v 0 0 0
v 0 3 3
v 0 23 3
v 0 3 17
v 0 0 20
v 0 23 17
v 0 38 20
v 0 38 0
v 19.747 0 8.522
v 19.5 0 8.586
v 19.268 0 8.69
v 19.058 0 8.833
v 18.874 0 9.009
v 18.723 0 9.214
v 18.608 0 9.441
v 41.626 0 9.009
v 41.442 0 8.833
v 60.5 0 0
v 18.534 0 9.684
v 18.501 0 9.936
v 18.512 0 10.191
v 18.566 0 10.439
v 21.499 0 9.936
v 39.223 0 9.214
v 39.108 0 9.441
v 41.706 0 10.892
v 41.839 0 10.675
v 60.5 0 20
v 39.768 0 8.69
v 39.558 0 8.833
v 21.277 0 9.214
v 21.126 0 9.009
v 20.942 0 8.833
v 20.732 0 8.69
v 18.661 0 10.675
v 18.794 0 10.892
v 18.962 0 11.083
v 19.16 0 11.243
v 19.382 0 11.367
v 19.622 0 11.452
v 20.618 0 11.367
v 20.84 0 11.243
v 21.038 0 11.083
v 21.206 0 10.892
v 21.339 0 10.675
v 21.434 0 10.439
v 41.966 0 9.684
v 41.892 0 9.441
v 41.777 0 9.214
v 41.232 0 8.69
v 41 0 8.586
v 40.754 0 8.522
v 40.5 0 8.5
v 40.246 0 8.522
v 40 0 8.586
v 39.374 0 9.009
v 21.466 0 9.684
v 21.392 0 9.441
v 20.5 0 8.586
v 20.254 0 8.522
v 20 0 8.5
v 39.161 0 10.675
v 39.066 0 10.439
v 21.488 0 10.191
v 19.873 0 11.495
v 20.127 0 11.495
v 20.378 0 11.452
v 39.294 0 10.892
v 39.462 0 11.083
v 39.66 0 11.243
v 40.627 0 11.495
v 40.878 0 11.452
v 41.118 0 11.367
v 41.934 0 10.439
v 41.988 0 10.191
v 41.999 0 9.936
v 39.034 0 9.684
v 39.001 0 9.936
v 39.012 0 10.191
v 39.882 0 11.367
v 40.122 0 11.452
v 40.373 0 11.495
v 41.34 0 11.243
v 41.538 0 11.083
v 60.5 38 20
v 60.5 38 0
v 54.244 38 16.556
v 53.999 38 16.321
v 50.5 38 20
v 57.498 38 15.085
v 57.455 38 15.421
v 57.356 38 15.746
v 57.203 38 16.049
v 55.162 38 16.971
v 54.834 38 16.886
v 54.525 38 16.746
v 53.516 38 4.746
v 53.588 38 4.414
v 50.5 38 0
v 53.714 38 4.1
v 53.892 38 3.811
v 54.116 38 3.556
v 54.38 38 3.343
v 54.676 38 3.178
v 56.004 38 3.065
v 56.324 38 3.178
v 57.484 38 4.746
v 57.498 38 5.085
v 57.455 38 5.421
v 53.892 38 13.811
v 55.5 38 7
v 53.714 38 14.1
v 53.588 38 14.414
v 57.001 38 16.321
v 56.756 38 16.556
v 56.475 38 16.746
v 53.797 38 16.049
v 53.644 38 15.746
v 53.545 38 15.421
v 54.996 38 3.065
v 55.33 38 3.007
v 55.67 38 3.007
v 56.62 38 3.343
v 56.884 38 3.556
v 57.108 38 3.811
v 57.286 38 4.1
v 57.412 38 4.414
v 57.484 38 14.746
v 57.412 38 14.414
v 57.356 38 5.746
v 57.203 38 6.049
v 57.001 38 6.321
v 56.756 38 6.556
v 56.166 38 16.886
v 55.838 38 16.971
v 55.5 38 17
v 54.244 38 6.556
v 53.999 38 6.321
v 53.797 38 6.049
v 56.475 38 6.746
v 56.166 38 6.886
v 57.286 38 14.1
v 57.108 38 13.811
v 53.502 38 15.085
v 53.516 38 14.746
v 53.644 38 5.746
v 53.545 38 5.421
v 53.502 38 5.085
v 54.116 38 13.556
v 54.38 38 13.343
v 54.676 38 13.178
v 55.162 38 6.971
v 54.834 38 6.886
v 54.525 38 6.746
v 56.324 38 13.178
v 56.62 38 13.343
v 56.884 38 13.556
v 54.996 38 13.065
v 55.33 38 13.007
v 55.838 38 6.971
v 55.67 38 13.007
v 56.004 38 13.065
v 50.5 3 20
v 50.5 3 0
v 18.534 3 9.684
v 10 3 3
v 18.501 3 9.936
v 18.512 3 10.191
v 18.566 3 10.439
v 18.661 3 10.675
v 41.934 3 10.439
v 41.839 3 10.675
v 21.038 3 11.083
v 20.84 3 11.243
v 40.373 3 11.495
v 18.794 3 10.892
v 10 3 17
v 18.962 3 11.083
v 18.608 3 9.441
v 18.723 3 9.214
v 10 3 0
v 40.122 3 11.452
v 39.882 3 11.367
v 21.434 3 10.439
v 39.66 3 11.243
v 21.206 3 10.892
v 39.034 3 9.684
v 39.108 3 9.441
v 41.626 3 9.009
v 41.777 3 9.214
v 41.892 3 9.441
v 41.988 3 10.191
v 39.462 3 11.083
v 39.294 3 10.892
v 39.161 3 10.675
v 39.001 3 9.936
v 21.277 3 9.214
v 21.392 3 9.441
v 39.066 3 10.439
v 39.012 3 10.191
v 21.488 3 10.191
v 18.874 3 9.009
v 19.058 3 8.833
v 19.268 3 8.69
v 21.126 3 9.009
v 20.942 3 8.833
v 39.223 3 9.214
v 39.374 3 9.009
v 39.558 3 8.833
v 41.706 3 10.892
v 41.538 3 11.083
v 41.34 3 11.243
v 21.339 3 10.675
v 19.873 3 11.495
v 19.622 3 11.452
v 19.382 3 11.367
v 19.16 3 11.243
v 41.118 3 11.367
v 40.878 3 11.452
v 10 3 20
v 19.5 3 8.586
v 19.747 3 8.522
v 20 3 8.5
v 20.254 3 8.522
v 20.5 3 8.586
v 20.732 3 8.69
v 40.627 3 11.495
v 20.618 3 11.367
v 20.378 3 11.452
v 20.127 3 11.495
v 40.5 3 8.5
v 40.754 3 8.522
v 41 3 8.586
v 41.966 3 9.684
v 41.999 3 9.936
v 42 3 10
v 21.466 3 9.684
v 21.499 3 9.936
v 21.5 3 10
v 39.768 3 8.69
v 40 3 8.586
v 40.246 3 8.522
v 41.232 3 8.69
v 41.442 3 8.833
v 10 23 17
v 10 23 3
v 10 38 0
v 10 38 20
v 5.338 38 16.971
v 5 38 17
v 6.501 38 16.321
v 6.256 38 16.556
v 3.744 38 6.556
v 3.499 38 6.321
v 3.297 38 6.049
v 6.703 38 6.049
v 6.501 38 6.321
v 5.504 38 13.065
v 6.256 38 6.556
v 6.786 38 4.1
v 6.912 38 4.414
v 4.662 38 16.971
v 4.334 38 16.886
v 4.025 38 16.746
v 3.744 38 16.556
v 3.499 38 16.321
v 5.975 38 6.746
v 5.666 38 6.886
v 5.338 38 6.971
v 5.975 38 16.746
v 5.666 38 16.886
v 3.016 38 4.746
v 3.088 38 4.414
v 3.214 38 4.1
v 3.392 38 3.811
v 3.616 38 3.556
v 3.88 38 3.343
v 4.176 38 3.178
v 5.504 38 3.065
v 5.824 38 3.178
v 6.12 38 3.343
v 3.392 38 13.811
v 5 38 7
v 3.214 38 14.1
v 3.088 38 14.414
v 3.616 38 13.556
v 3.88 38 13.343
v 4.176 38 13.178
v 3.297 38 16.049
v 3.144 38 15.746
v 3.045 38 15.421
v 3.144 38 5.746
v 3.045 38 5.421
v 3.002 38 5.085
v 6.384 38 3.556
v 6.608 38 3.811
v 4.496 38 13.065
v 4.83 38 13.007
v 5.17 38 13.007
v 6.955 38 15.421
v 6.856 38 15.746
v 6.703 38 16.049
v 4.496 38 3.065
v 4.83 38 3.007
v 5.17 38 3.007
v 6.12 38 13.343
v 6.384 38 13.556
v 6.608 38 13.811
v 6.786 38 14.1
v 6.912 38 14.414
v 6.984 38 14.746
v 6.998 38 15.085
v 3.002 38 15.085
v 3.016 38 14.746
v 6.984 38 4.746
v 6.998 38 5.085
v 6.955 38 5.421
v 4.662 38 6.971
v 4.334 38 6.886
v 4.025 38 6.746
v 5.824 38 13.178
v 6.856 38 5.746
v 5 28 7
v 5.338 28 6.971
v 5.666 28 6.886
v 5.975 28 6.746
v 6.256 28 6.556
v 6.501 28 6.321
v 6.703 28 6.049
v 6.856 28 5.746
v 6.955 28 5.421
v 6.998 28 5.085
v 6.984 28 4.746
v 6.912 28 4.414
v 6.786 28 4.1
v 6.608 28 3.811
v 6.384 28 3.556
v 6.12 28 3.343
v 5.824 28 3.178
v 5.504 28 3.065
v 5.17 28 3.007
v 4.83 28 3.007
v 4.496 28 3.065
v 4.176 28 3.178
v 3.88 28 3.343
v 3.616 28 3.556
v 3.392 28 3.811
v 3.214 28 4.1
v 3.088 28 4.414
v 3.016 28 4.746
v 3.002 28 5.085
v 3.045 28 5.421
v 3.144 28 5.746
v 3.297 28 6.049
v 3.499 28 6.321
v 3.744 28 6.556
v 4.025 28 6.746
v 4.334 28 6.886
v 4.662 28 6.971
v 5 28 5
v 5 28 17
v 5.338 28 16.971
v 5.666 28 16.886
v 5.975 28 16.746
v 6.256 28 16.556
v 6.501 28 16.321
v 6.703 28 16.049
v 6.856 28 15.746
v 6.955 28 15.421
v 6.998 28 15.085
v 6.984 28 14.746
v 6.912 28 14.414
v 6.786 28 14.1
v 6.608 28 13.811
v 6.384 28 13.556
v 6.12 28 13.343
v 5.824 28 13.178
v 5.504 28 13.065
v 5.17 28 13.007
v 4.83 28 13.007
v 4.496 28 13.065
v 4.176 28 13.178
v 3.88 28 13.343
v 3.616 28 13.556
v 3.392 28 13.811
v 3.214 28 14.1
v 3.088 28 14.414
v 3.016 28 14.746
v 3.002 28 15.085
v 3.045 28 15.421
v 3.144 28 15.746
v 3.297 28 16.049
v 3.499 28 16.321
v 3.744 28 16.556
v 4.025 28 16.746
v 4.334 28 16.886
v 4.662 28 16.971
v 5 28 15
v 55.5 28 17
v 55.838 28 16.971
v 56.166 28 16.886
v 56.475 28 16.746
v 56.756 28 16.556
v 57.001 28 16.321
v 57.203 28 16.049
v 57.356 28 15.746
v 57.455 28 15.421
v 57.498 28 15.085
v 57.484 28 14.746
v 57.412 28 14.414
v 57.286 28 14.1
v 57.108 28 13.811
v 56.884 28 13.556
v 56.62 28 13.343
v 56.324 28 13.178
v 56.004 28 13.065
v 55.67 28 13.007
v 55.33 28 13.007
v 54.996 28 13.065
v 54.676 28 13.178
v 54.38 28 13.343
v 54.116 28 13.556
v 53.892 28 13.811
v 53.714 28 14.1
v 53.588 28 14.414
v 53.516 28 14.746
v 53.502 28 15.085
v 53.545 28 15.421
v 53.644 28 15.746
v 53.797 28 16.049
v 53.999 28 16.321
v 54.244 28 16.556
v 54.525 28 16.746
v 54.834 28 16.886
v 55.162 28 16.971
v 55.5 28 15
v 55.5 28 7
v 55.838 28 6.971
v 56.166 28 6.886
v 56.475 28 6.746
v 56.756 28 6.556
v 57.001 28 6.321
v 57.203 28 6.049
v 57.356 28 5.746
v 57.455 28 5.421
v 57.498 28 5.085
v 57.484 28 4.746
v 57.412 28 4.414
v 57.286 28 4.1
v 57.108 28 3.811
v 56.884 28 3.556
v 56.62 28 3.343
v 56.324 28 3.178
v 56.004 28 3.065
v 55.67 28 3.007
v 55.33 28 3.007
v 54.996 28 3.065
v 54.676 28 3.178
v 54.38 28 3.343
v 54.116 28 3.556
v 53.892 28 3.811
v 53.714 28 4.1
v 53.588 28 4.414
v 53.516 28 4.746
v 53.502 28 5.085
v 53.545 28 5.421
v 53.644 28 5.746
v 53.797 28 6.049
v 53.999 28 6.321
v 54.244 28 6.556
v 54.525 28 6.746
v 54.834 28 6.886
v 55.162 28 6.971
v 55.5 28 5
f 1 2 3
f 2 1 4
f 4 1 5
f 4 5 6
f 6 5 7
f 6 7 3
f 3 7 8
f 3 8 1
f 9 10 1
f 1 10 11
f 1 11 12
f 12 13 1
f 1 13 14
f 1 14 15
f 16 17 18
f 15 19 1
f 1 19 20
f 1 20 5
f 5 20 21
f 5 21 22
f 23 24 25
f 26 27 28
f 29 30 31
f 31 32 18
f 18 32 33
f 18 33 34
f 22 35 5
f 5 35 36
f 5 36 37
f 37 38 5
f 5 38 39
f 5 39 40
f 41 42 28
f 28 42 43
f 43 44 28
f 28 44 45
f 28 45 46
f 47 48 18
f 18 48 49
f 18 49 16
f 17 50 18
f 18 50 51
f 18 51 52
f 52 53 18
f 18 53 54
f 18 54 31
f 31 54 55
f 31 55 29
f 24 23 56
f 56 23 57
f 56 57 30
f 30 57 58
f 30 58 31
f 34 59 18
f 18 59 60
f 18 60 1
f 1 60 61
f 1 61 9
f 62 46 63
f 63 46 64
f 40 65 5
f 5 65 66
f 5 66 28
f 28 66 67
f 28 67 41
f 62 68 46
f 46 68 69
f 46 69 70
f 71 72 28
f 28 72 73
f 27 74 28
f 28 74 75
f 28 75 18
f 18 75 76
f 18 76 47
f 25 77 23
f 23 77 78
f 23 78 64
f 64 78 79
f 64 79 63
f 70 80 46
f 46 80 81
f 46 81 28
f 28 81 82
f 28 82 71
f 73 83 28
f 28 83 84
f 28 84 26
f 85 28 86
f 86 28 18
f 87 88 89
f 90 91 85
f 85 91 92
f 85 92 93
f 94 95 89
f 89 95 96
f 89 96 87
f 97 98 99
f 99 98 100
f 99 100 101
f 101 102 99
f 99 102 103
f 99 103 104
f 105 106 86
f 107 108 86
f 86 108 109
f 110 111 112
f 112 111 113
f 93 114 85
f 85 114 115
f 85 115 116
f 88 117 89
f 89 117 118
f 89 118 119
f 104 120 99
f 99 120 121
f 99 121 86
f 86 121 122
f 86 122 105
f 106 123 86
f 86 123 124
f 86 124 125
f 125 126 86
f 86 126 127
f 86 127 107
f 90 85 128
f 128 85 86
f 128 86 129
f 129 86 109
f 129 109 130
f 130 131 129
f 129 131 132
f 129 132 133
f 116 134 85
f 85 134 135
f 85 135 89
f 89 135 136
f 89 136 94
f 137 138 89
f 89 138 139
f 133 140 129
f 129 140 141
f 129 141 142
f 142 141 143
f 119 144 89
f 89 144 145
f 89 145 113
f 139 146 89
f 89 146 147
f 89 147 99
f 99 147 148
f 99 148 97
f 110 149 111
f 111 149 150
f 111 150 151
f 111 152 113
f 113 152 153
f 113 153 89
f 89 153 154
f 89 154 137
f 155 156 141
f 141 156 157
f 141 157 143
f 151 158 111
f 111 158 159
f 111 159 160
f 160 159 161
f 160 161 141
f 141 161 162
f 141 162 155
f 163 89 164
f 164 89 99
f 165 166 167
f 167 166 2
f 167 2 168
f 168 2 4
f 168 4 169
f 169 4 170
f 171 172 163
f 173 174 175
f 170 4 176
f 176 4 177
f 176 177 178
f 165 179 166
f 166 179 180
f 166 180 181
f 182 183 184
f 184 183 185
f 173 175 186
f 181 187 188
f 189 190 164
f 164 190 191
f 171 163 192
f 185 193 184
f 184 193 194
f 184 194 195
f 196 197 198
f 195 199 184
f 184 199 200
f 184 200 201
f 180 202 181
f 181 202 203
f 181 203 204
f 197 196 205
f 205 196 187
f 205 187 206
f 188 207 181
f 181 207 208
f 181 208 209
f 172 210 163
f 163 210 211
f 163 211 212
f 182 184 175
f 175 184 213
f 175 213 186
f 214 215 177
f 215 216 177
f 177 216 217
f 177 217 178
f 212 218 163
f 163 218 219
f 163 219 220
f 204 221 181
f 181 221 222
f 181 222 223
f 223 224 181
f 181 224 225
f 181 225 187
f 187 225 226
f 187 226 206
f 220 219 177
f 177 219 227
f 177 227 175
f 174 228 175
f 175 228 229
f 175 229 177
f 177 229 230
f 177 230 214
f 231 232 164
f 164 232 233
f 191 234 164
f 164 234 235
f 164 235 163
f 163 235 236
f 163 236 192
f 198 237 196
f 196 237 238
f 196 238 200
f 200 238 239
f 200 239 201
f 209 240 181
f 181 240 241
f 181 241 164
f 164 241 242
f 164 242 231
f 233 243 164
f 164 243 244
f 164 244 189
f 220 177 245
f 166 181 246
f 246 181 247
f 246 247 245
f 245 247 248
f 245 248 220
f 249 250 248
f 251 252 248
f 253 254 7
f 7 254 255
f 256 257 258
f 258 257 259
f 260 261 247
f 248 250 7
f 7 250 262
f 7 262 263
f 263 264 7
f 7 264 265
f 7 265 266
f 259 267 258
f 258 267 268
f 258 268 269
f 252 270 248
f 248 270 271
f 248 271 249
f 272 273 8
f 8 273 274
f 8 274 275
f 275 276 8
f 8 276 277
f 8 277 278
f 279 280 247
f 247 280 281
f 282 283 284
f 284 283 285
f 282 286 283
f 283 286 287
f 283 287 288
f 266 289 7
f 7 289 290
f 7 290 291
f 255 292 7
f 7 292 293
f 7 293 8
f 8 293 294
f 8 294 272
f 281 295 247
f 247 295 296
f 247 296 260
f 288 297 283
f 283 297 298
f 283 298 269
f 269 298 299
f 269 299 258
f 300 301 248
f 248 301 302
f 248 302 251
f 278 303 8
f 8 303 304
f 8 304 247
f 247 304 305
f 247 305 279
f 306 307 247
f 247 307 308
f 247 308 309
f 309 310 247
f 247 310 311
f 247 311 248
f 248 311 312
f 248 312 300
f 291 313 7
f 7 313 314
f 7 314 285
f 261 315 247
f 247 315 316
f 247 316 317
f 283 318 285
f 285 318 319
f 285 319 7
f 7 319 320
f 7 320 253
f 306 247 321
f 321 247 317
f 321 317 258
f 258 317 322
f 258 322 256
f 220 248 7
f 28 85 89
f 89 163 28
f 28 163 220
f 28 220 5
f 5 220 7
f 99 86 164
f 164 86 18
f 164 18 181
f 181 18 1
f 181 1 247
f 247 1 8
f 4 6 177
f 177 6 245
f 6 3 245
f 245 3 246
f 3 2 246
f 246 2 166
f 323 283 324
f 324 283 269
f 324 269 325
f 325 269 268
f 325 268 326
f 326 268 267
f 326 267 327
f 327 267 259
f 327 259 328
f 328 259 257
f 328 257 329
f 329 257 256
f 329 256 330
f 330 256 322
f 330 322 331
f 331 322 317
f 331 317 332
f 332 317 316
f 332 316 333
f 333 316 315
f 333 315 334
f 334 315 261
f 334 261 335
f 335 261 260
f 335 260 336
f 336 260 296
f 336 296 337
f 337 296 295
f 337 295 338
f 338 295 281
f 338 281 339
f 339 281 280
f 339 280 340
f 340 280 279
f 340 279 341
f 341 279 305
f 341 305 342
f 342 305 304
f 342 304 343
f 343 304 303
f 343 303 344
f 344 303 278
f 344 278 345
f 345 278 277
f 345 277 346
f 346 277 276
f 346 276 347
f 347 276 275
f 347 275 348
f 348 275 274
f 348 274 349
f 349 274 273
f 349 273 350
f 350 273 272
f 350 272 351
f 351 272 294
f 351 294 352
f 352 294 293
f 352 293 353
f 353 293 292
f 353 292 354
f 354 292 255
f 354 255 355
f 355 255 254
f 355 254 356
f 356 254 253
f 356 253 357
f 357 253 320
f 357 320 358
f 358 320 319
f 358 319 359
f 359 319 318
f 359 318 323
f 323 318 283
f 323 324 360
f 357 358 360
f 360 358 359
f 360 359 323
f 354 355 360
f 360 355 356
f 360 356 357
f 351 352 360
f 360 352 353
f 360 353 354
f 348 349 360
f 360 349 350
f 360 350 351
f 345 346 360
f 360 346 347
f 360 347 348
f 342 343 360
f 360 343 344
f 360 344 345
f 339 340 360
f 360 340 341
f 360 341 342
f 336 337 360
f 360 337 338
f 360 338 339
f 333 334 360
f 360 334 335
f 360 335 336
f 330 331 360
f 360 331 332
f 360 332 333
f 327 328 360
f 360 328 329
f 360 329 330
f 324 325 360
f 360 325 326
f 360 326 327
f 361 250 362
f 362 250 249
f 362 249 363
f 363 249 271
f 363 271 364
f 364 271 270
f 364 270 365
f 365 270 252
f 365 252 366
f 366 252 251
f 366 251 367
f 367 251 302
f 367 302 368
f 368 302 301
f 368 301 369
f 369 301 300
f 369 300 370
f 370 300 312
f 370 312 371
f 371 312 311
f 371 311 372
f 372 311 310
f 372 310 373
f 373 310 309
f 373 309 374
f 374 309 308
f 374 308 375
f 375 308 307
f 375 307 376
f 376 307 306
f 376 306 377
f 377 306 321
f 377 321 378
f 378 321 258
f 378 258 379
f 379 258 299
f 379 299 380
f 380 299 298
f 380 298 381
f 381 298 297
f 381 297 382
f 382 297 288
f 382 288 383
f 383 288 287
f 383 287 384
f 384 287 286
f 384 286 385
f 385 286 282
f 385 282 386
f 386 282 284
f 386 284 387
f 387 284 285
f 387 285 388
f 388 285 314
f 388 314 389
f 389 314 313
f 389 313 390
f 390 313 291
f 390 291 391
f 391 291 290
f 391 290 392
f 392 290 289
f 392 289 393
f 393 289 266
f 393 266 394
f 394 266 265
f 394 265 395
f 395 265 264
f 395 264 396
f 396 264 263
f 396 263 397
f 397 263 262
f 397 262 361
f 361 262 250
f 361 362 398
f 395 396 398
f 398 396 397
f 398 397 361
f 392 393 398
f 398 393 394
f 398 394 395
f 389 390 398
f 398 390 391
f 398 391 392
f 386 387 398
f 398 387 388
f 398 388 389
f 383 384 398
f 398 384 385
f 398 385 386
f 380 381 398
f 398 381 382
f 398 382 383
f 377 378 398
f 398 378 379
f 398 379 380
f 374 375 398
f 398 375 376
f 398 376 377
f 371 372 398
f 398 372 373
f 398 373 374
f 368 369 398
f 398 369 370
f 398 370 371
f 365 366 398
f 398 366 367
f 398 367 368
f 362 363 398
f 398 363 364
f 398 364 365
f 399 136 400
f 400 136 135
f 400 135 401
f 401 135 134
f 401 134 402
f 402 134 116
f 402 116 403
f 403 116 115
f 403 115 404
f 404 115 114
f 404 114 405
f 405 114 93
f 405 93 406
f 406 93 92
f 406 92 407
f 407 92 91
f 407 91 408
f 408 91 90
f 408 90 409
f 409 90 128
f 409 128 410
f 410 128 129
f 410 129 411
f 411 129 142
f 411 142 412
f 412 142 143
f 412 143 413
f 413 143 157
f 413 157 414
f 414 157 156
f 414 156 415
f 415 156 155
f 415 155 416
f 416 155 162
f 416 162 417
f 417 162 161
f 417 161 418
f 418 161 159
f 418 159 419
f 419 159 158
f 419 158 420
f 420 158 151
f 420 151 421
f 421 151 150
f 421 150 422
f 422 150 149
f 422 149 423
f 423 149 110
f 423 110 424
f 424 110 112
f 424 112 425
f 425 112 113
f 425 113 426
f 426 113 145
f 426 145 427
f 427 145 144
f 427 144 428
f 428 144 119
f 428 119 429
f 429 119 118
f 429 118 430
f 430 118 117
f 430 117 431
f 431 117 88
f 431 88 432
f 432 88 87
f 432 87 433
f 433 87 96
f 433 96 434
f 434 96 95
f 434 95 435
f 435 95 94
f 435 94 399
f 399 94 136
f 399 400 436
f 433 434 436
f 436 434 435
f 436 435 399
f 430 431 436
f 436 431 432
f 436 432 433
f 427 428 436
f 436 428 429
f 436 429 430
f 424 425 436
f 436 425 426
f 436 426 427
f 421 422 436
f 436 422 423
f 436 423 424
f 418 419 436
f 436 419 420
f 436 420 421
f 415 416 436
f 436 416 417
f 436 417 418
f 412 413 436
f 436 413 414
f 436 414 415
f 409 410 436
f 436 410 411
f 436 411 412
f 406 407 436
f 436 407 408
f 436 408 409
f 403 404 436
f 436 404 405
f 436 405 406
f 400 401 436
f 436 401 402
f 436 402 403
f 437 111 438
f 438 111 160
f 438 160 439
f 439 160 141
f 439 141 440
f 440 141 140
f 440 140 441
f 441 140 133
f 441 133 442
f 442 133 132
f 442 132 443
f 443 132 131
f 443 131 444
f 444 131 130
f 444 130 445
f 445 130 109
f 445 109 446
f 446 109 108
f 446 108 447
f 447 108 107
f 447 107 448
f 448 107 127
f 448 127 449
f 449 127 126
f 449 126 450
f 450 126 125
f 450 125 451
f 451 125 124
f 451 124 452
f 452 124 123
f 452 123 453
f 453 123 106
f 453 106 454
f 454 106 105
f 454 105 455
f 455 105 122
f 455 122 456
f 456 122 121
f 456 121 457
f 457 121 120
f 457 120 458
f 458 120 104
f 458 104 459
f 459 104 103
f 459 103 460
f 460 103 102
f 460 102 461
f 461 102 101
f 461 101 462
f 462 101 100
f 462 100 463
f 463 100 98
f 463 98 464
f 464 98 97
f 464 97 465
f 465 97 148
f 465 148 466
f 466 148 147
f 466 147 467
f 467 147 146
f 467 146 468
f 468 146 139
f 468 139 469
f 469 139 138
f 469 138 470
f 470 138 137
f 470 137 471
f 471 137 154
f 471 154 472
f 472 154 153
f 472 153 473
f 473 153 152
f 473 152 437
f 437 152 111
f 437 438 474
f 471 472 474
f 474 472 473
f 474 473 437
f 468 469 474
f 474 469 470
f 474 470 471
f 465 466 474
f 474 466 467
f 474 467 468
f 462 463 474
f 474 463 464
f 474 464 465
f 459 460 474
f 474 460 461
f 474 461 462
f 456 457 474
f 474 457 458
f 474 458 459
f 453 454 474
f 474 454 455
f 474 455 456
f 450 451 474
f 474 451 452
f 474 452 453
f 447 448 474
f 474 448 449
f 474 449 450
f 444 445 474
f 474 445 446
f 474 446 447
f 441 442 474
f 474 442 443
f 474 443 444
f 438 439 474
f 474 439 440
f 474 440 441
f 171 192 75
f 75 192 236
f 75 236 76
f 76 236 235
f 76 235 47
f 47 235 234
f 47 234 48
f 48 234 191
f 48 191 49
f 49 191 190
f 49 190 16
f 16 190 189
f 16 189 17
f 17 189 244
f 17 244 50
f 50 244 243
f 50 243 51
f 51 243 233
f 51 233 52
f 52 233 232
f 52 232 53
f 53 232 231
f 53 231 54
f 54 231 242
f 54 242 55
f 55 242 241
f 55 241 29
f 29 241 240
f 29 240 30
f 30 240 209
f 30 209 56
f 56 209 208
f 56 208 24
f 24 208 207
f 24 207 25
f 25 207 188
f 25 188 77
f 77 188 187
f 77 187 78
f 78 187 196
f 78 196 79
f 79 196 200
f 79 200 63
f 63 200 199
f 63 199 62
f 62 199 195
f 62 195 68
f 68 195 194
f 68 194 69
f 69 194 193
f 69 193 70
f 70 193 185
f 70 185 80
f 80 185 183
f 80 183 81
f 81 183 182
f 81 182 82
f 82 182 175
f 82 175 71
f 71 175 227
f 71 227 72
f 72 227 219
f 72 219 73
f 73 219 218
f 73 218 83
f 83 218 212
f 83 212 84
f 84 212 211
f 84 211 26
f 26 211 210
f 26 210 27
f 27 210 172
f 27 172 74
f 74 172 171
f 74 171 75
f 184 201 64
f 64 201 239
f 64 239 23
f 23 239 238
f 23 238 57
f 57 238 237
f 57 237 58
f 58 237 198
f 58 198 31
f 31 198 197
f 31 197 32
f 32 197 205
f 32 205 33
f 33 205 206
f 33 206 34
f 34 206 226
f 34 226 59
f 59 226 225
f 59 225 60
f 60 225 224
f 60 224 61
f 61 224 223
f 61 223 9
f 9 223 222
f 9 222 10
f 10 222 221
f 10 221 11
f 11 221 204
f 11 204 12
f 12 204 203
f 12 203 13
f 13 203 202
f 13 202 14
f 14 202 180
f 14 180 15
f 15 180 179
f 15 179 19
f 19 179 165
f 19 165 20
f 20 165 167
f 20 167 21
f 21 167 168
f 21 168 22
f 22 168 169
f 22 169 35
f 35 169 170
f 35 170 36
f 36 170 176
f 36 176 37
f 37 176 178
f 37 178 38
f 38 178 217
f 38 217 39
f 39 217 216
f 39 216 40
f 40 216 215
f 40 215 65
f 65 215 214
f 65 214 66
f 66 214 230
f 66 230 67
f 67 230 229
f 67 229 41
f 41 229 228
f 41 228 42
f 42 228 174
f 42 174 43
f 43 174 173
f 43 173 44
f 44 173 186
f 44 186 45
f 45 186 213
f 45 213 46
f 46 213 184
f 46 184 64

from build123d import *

# Parameters (mm, degrees)
EXTRUDE_2_DEPTH     = 20
CUT_EXTRUDE_1_REACH = 76.191
SKETCH_3_W          = 14
SKETCH_3_H          = 20
SKETCH_4_R          = 2
CUT_EXTRUDE_2_DEPTH = 10
SKETCH_5_R          = 1.5
CUT_EXTRUDE_3_DEPTH = 10


with BuildPart() as part:
    # Эскиз2 → Бобышка-Вытянуть2 (new body)
    with BuildSketch(Plane.XY):
        Polygon((0, 0), (60.5, 0), (60.5, 38), (50.5, 38), (50.5, 3), (10, 3), (10, 38), (0, 38), align=None)
    extrude(amount=EXTRUDE_2_DEPTH)

    # Эскиз3 → Вырез-Вытянуть1 (cut, up to next)
    with BuildSketch(Plane.ZY, mode=Mode.PRIVATE) as cut_extrude_1_sk1:
        with Locations((10, 13)):
            Rectangle(SKETCH_3_W, SKETCH_3_H)
    cut_extrude_1_tool1 = extrude(cut_extrude_1_sk1.sketch, amount=-CUT_EXTRUDE_1_REACH, mode=Mode.PRIVATE) & part.part
    add(cut_extrude_1_tool1.solids().sort_by_distance((0, 13, 10))[0], mode=Mode.SUBTRACT)

    # Эскиз4 → Вырез-Вытянуть2 (cut)
    with BuildSketch(Plane(origin=(0, 38, 0), x_dir=(1, 0, 0), z_dir=(0, 1, 0))):
        with Locations(Location((5, -5, 0), (0, 0, 270))):
            Circle(SKETCH_4_R)
        with Locations(Location((5, -15, 0), (0, 0, 270))):
            Circle(SKETCH_4_R)
        with Locations(Location((55.5, -5, 0), (0, 0, 270))):
            Circle(SKETCH_4_R)
        with Locations(Location((55.5, -15, 0), (0, 0, 270))):
            Circle(SKETCH_4_R)
    extrude(amount=-CUT_EXTRUDE_2_DEPTH, mode=Mode.SUBTRACT)

    # Эскиз5 → Вырез-Вытянуть3 (cut)
    with BuildSketch(Plane.XZ):
        with Locations(Location((20, 10, 0), (0, 0, 270))):
            Circle(SKETCH_5_R)
        with Locations(Location((40.5, 10, 0), (0, 0, 270))):
            Circle(SKETCH_5_R)
    extrude(amount=-CUT_EXTRUDE_3_DEPTH, mode=Mode.SUBTRACT)


solid = part.part
